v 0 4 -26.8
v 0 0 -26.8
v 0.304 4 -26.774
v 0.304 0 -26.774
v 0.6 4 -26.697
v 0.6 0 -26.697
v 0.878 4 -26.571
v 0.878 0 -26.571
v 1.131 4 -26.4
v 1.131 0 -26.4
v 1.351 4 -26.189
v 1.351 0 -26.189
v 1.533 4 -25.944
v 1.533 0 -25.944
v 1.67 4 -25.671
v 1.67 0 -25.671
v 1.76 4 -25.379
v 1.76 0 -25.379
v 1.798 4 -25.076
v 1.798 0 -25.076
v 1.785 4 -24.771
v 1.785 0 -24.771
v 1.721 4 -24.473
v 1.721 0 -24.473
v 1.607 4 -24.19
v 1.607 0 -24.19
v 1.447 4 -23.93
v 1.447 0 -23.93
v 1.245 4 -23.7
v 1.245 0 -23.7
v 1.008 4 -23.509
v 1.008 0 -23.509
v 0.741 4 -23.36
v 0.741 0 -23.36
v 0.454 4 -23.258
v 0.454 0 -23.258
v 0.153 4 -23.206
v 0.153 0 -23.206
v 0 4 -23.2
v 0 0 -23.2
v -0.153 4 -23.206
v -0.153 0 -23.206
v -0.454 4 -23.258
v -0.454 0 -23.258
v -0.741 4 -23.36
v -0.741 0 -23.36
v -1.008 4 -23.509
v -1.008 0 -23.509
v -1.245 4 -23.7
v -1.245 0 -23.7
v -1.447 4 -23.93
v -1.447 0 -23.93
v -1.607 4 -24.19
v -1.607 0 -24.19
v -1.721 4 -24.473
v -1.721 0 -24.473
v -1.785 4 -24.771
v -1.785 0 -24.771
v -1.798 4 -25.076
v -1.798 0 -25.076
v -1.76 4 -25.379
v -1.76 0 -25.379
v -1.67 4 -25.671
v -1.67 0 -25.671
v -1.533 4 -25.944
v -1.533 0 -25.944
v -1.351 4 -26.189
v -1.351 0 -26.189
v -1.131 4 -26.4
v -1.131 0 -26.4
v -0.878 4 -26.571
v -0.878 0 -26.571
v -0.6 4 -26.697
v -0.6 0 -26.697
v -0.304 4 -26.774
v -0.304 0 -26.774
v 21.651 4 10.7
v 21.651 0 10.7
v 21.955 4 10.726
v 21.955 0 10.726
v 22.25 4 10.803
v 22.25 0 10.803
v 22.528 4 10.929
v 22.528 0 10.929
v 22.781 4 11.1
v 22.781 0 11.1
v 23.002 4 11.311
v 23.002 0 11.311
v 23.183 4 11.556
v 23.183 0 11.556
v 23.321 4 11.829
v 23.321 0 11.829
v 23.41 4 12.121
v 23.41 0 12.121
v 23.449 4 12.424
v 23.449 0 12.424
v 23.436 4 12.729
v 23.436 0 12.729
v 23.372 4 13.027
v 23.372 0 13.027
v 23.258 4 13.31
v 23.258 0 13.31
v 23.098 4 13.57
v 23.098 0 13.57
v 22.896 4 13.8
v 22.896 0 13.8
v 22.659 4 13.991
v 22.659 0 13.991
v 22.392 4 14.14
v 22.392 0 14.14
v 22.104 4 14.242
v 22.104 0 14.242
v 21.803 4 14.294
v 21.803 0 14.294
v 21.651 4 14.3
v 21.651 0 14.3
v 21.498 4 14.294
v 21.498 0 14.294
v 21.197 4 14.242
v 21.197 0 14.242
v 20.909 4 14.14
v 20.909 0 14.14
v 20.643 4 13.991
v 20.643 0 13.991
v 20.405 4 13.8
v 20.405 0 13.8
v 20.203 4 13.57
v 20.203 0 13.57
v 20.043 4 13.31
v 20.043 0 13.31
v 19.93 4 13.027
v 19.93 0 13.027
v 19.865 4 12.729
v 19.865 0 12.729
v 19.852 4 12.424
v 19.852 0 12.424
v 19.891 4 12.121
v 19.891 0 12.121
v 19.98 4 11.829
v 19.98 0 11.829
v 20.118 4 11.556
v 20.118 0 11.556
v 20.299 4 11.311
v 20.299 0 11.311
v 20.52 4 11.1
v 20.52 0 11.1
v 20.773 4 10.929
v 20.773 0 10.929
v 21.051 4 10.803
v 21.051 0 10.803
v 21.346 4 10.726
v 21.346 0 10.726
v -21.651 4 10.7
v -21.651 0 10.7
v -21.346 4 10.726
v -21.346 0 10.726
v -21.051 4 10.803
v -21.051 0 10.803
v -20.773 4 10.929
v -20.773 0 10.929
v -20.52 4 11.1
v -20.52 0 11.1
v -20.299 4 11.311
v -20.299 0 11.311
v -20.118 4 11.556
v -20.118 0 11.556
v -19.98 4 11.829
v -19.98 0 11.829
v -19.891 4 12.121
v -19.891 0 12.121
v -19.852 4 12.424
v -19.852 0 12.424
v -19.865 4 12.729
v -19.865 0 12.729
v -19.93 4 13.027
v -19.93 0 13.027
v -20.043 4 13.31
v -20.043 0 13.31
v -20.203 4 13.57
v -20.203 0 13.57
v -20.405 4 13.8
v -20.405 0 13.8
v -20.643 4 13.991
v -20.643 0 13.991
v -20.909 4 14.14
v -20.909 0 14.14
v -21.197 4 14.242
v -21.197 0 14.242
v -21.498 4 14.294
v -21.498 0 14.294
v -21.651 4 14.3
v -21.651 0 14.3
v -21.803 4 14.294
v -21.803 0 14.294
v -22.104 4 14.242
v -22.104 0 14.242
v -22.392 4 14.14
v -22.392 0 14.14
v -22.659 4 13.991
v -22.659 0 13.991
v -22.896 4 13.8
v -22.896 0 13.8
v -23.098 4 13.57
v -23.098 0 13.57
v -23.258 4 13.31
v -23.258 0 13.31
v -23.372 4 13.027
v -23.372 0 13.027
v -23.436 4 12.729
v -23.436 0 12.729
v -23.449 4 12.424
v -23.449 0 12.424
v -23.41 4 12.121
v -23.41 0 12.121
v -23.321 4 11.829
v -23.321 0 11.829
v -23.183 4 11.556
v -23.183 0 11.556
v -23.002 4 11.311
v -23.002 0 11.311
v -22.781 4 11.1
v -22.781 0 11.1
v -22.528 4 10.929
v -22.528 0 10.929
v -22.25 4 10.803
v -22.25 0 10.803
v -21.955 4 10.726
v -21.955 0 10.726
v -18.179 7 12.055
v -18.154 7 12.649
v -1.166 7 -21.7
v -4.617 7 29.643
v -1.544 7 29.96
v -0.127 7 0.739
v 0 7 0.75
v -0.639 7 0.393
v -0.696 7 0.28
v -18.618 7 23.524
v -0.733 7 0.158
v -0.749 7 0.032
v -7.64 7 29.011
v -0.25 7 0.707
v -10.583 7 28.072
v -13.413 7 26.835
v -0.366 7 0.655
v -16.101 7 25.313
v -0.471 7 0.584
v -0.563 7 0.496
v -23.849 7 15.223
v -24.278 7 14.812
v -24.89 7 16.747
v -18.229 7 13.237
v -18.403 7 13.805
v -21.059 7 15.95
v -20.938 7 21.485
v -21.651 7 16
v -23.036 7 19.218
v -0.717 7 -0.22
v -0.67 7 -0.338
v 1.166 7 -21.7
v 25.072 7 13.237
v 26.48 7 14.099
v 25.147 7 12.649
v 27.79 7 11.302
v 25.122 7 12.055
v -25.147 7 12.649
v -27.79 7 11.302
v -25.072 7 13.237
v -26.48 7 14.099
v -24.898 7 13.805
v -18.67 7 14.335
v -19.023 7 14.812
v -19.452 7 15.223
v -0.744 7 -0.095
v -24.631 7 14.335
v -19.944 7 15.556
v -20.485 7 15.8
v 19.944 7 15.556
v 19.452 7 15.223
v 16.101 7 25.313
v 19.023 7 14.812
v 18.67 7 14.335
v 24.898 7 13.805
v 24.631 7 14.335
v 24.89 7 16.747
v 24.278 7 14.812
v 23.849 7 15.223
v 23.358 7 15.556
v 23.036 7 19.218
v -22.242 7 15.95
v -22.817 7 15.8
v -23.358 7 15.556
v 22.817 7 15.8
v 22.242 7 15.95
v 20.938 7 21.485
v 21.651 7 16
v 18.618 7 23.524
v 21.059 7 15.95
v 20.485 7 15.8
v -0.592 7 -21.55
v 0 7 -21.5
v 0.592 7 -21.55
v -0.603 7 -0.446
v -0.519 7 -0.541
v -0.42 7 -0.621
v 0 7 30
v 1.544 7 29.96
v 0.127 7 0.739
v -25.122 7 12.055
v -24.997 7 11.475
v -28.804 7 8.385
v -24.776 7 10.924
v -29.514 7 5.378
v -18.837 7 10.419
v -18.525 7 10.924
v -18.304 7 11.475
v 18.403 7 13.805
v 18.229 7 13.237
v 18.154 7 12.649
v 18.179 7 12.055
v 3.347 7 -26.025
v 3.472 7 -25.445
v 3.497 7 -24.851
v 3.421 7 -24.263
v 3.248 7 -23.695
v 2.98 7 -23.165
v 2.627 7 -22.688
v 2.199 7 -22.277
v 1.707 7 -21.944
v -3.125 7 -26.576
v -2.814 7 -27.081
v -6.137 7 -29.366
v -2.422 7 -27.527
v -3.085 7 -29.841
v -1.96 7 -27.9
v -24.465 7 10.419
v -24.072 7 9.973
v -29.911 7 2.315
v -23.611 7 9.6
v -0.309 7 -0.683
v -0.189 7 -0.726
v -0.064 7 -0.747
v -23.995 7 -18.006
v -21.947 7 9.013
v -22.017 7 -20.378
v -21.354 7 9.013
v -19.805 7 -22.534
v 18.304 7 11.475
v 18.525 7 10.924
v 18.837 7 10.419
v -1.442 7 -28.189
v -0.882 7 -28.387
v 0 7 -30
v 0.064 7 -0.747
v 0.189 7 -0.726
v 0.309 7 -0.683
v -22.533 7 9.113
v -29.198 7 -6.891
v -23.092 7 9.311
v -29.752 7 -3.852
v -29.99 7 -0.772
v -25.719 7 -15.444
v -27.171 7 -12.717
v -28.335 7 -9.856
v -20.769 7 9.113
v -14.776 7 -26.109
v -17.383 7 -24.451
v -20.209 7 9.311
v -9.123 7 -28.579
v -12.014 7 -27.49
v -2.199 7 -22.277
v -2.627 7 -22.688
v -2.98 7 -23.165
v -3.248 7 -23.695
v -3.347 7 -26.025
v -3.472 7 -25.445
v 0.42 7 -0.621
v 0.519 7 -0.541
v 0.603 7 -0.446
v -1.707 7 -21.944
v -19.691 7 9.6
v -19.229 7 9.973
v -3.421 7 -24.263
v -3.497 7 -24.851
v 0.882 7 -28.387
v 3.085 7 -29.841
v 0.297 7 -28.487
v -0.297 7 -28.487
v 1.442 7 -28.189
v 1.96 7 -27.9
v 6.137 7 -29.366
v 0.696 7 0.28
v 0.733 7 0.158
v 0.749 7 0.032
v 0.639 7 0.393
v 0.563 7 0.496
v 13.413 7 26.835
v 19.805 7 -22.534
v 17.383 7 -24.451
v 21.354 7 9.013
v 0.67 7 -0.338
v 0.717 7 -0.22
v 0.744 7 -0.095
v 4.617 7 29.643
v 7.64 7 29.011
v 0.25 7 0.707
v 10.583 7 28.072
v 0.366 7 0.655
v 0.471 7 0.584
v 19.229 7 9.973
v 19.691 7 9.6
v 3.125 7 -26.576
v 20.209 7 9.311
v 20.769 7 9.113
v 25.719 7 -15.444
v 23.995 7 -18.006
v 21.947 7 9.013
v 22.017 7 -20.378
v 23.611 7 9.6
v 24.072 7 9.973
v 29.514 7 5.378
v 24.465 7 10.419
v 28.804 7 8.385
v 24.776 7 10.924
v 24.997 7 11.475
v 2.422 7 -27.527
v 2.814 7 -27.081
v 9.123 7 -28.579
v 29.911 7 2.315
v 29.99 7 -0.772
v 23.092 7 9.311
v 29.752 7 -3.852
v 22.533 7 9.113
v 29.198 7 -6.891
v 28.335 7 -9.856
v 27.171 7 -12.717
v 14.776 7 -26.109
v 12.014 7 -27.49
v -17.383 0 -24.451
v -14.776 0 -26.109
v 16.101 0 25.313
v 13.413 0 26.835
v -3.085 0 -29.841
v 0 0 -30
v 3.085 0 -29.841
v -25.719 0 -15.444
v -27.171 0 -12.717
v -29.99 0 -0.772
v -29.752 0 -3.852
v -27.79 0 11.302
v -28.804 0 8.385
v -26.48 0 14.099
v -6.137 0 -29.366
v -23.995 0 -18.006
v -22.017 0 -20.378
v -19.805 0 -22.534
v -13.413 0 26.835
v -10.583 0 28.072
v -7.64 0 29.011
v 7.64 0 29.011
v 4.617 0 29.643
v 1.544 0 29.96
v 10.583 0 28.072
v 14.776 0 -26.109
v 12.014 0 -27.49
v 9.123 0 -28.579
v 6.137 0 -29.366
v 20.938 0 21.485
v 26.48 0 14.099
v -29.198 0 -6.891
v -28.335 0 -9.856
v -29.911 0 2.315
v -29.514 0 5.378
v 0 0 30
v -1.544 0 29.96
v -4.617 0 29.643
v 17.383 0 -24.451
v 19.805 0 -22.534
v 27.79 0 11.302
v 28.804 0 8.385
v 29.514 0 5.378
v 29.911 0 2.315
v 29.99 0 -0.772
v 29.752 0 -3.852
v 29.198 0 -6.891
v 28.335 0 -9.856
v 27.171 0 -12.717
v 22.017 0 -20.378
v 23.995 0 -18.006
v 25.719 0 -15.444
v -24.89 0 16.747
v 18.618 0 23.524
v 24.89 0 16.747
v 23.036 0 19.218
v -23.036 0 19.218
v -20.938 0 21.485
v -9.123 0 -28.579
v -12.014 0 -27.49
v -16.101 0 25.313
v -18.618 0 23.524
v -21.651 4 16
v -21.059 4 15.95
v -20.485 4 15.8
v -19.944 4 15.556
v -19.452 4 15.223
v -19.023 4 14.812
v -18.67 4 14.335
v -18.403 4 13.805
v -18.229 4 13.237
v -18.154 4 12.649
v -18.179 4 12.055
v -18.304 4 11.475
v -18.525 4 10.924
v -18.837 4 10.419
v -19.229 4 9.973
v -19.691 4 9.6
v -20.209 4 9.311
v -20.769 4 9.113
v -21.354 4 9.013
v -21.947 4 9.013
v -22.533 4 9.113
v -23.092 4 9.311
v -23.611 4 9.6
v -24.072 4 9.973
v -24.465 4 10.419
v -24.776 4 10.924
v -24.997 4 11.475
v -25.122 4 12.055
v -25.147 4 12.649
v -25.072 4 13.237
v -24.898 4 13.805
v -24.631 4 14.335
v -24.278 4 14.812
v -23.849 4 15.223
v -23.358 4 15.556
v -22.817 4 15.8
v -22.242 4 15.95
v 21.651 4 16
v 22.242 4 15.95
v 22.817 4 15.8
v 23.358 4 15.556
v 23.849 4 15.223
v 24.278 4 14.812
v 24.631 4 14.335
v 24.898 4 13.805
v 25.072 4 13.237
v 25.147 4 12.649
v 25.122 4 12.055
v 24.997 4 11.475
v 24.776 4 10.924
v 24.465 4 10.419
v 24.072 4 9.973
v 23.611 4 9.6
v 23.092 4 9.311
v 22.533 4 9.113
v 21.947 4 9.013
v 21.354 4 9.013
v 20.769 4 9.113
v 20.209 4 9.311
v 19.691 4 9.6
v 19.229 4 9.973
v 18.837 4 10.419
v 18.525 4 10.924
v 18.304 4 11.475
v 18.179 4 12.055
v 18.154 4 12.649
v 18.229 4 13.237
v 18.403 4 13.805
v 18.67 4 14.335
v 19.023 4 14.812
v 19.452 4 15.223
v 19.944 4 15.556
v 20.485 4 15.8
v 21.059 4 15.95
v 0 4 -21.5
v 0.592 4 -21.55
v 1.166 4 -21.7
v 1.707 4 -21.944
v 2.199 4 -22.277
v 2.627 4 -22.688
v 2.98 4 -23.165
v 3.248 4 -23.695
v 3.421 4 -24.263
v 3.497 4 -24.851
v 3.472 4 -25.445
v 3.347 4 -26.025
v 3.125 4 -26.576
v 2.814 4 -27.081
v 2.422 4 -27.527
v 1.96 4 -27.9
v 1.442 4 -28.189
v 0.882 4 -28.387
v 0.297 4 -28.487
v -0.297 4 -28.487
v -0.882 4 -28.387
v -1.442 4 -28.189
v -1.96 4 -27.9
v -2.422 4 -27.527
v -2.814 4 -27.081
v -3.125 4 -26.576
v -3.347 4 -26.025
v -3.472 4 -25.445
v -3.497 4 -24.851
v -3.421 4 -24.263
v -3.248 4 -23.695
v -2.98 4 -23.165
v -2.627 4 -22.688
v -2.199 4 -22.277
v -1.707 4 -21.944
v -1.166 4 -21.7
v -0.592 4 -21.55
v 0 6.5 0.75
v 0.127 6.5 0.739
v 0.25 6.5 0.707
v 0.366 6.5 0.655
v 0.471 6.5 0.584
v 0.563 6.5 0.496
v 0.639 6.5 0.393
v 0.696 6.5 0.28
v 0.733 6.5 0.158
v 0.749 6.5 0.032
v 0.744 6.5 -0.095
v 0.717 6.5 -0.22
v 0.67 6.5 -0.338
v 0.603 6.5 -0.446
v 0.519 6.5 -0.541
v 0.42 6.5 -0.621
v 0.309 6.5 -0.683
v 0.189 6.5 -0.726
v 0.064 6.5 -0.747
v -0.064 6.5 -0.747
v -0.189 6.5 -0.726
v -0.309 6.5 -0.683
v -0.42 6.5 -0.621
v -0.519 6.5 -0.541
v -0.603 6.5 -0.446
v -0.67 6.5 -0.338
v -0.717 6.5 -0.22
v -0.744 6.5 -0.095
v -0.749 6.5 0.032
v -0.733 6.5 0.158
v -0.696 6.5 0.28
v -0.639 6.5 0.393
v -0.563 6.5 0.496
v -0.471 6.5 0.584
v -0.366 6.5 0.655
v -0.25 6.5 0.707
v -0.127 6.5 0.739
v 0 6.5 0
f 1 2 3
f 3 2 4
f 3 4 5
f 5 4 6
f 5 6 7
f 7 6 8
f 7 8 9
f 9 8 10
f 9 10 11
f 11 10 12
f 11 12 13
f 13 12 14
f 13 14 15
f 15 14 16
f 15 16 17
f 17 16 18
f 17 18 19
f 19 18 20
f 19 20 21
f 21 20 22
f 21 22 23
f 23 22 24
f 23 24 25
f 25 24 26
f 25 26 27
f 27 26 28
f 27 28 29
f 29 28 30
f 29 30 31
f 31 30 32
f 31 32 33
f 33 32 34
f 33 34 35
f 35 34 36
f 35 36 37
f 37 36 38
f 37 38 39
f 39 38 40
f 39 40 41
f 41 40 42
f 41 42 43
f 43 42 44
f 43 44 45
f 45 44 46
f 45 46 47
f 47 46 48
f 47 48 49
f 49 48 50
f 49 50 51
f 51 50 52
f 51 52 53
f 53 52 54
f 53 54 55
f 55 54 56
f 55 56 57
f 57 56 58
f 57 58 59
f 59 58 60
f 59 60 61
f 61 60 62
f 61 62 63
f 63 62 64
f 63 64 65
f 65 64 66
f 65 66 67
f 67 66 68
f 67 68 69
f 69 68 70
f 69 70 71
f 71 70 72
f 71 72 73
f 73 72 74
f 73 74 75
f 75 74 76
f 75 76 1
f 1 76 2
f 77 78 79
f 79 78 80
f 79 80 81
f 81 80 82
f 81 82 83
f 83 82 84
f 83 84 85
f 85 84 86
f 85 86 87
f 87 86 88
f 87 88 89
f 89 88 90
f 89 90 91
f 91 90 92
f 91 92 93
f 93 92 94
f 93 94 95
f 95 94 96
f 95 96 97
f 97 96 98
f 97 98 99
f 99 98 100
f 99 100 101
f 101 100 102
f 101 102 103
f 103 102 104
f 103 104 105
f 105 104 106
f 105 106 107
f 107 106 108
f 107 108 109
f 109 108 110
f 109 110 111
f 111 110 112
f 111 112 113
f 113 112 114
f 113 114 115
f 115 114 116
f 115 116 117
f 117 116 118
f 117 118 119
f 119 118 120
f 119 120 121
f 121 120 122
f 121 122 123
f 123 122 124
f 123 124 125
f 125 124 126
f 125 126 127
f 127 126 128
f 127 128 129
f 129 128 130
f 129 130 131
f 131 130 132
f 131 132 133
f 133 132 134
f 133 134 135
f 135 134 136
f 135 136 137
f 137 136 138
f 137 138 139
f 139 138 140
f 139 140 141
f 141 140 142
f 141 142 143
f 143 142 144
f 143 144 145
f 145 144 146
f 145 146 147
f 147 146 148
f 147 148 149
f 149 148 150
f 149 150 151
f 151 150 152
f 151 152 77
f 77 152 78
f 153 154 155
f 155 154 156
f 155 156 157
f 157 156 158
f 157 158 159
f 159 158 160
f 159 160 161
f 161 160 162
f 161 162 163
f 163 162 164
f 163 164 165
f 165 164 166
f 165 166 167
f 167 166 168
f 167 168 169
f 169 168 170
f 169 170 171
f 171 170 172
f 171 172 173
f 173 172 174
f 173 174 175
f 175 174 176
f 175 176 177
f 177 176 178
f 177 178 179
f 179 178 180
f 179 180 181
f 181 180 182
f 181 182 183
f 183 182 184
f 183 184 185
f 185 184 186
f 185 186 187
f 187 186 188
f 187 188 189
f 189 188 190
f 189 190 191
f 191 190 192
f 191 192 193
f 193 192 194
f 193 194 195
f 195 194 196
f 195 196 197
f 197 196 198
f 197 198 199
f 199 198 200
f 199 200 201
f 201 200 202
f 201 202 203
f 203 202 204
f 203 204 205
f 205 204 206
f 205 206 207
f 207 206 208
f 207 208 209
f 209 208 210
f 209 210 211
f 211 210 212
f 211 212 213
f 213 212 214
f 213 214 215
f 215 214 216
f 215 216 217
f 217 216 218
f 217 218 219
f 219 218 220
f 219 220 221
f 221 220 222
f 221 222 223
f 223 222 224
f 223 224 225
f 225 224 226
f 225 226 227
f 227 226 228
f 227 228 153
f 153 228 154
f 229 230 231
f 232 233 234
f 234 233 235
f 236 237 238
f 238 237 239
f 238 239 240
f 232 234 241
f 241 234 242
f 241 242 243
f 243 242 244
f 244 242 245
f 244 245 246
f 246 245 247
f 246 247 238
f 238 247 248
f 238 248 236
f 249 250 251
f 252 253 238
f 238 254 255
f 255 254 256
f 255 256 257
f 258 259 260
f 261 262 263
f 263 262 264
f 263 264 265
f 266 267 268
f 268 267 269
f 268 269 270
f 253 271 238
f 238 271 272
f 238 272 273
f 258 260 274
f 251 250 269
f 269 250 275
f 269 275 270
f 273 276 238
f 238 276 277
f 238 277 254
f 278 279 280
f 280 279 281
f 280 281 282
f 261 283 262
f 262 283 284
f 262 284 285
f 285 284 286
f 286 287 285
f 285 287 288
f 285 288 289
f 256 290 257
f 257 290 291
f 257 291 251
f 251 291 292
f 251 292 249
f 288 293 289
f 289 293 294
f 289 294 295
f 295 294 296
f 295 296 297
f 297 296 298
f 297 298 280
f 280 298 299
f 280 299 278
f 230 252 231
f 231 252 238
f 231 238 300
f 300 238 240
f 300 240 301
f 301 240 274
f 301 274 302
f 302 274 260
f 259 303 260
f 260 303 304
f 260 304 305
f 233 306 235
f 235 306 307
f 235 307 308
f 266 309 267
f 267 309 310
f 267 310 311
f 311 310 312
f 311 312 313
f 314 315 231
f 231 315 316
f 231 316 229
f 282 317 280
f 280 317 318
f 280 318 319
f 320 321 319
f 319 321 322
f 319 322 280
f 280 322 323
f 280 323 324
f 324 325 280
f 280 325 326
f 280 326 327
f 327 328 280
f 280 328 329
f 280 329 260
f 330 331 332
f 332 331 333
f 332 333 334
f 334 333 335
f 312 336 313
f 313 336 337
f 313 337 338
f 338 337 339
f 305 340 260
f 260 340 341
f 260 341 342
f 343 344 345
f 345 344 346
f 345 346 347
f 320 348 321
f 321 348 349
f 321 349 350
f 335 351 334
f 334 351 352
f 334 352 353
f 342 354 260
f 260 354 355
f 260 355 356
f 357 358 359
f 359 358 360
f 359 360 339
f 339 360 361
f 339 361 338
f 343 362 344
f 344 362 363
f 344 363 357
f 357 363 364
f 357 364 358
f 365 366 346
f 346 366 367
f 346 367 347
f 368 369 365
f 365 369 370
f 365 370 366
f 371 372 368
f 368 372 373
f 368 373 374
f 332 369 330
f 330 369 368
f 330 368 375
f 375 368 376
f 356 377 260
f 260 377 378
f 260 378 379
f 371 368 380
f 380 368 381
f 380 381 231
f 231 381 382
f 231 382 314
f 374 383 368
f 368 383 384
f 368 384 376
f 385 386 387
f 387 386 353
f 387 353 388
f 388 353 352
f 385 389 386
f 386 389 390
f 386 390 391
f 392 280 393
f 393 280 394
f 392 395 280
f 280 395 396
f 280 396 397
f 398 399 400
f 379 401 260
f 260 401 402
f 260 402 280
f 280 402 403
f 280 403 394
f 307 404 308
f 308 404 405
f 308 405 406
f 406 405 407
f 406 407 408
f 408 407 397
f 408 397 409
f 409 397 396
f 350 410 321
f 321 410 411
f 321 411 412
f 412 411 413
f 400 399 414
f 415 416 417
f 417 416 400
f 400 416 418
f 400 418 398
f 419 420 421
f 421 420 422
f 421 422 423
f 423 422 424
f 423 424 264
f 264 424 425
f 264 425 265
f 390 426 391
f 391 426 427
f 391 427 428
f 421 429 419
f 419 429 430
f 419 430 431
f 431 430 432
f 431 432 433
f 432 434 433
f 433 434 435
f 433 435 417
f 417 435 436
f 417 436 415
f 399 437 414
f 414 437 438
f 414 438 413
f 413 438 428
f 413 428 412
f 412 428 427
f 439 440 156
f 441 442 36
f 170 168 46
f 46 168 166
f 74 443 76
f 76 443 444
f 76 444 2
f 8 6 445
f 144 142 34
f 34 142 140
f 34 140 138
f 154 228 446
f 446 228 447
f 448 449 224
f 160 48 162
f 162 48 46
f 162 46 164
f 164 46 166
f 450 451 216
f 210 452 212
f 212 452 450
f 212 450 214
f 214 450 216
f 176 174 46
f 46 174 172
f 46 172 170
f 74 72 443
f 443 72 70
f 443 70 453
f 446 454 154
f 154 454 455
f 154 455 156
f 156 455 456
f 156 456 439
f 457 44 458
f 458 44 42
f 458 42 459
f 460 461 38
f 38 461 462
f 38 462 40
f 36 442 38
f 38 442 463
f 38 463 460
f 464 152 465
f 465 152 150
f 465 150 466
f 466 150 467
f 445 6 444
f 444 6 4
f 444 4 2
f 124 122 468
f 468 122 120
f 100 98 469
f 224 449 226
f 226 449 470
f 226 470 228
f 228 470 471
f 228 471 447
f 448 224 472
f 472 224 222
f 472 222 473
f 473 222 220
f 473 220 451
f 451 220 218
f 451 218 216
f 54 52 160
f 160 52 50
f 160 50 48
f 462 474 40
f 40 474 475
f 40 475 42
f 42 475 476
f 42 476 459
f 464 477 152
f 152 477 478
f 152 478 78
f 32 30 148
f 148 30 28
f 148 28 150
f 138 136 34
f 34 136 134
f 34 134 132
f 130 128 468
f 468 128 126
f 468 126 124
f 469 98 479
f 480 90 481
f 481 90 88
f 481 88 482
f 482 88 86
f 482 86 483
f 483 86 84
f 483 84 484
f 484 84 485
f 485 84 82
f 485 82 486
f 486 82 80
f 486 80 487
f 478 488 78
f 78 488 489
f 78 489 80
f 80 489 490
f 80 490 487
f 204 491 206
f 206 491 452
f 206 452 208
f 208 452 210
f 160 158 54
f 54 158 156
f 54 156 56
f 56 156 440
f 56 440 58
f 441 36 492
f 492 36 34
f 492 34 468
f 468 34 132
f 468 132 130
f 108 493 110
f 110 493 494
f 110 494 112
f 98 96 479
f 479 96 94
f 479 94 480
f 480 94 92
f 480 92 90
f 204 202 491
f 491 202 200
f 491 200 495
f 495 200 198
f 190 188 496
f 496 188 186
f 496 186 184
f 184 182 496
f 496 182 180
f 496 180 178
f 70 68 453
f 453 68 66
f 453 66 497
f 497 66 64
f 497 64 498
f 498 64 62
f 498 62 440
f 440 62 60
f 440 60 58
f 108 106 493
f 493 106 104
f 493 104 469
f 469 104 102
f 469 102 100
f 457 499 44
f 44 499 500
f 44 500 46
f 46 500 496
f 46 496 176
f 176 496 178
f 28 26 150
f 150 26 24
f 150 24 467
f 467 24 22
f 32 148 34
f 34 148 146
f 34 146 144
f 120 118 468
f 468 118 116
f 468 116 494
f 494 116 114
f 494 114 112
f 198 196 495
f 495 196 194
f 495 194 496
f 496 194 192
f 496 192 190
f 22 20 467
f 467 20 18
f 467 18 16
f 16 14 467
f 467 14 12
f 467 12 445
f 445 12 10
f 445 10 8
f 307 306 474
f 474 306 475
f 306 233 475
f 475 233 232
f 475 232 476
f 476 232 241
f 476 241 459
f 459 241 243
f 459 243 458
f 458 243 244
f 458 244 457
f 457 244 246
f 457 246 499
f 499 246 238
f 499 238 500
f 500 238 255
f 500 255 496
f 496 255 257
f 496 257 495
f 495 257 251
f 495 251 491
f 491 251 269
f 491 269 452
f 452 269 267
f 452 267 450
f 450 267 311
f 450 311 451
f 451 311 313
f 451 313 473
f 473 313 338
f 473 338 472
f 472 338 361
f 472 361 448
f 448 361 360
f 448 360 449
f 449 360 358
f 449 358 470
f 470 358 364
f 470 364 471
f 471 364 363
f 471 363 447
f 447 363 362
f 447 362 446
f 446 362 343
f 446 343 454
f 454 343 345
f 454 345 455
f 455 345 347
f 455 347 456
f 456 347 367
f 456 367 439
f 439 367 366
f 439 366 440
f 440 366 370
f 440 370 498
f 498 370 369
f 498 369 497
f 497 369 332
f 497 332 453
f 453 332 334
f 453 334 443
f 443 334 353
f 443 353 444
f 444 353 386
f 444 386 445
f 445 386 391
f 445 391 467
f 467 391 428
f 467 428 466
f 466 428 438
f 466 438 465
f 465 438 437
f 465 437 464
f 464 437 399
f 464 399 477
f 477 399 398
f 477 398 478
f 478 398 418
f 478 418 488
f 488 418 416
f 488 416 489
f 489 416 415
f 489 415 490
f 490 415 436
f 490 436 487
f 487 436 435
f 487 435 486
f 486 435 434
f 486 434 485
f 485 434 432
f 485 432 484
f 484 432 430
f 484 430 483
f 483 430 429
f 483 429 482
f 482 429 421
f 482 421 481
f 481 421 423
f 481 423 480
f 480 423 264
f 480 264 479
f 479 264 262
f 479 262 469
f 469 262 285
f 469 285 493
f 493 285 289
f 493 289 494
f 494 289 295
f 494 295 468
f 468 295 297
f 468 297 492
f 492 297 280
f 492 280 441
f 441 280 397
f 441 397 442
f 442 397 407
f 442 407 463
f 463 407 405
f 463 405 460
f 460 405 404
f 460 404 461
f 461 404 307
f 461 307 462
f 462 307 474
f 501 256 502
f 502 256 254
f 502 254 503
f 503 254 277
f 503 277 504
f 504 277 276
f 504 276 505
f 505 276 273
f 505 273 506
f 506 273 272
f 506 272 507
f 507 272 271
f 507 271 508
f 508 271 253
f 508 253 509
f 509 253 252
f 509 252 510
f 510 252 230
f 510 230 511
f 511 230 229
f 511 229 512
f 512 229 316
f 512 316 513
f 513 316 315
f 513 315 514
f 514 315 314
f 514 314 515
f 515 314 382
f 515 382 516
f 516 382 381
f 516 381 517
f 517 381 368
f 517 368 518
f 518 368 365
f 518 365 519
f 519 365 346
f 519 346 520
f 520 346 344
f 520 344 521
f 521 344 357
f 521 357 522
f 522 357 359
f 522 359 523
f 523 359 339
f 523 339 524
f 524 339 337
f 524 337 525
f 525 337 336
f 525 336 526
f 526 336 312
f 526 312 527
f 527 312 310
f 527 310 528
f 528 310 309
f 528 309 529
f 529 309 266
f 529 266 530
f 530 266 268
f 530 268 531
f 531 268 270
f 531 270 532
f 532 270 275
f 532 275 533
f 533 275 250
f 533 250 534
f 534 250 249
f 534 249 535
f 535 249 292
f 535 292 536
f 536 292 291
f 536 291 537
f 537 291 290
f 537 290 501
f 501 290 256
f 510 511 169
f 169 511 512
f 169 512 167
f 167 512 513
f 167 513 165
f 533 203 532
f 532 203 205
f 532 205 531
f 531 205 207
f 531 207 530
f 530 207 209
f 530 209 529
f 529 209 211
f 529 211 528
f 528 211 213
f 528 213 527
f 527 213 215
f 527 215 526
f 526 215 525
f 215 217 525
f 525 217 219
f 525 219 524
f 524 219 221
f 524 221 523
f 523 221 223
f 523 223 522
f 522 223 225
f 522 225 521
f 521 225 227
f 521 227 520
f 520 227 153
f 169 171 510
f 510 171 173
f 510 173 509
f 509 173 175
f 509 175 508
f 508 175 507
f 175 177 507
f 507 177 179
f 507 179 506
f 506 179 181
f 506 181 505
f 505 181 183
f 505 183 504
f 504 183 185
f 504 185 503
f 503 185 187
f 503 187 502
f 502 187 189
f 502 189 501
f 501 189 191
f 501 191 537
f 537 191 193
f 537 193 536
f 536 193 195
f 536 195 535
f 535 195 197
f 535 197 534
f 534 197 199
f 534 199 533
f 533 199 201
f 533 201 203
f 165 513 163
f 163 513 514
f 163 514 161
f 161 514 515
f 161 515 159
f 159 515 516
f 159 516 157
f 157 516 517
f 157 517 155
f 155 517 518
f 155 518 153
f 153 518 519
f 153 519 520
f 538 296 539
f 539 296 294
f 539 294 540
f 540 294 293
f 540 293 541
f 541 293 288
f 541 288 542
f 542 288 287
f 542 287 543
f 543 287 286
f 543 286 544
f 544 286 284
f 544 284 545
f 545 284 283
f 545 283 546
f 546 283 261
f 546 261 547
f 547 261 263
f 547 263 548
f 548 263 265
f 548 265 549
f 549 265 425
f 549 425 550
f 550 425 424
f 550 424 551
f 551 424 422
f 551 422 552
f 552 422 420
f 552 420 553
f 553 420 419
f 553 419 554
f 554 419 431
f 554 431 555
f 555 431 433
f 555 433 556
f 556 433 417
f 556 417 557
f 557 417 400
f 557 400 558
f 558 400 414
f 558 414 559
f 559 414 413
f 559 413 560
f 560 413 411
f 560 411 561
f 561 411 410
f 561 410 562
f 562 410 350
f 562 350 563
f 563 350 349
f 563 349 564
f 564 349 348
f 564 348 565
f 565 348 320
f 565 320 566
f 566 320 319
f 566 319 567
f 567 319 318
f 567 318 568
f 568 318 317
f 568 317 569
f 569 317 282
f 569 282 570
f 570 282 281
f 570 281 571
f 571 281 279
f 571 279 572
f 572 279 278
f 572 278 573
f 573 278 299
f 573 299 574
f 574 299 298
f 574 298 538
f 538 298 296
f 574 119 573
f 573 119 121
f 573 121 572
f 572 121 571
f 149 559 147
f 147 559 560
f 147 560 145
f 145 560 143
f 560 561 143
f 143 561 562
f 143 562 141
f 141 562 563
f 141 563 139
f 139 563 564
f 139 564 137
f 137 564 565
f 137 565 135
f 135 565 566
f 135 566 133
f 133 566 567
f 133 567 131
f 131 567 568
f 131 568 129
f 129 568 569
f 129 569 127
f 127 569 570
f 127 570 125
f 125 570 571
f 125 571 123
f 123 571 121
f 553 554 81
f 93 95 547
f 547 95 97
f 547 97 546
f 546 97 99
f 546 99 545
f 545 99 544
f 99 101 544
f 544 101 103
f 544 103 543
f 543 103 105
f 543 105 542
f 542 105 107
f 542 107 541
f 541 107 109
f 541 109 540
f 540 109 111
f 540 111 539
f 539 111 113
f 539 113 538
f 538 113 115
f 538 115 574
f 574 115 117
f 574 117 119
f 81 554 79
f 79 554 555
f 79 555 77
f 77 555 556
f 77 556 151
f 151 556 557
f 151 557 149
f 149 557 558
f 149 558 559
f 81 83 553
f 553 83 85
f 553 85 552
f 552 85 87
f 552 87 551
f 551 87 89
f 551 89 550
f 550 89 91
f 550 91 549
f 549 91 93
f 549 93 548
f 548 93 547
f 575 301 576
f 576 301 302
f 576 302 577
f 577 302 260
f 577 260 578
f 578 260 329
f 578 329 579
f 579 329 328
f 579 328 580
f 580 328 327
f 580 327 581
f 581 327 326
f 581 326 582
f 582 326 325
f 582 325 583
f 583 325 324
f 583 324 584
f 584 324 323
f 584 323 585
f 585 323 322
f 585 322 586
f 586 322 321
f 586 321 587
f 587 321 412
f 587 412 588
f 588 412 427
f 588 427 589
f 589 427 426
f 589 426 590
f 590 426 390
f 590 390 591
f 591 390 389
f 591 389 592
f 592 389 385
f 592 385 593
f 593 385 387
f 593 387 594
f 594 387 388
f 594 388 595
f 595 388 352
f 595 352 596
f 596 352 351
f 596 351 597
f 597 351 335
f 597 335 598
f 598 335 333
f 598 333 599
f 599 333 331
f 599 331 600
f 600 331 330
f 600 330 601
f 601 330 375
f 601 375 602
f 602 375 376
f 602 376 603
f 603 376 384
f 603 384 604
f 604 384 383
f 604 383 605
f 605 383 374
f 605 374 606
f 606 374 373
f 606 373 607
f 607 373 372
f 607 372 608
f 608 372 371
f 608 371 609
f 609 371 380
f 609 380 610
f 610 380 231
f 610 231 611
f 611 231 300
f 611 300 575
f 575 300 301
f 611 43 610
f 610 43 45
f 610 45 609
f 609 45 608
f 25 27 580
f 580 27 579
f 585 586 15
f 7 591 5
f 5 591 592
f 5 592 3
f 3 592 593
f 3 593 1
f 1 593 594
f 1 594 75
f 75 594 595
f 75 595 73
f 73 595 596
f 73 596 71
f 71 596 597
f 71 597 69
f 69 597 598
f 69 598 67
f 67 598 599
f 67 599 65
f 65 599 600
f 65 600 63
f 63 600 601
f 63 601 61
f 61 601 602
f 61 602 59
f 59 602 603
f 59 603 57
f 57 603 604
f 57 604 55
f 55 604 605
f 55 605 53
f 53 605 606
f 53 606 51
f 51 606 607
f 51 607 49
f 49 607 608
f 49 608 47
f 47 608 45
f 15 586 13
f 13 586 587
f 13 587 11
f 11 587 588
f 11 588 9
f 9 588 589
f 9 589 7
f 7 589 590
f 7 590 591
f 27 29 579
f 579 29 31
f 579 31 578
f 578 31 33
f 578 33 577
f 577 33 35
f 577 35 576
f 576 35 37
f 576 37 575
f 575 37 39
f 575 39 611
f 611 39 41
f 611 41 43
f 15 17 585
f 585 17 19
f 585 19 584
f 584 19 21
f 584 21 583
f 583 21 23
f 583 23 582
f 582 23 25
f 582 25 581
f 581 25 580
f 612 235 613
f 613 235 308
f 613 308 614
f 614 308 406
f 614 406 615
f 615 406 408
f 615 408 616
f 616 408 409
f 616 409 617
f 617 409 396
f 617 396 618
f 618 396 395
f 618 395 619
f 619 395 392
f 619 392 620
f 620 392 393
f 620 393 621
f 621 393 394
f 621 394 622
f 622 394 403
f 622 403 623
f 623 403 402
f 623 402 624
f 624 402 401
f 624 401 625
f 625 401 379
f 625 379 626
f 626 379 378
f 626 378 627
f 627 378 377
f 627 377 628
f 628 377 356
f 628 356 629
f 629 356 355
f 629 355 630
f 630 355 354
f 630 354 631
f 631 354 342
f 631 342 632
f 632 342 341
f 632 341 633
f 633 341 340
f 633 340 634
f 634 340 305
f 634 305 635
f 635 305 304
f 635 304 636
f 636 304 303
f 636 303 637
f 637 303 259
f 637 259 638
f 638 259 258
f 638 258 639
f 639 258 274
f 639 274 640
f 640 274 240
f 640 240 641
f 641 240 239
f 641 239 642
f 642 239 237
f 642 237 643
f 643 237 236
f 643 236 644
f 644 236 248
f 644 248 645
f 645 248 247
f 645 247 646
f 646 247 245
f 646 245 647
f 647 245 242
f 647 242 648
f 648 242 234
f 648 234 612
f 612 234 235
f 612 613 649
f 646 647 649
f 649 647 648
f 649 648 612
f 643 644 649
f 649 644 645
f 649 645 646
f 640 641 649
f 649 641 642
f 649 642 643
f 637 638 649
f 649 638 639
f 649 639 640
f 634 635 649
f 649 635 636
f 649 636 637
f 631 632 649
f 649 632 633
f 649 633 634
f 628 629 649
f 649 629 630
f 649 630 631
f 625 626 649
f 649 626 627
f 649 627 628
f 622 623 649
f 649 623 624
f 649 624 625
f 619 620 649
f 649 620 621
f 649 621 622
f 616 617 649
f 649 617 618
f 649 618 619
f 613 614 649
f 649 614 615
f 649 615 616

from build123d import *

# Parameters (mm, degrees)
SKETCH1_R           = 30
SKETCH1_R_2         = 1.8
BOSS_EXTRUDE1_DEPTH = 7
SKETCH2_R           = 3.5
CUT_EXTRUDE1_DEPTH  = 3
SKETCH3_R           = 0.75
CUT_EXTRUDE2_DEPTH  = 0.5


with BuildPart() as part:
    # Sketch1 → Boss-Extrude1 (new body)
    with BuildSketch(Plane(origin=(0, 0, 0), x_dir=(1, 0, 0), z_dir=(0, 1, 0))):
        Circle(SKETCH1_R)
        with Locations((0, 25)):
            Circle(SKETCH1_R_2, mode=Mode.SUBTRACT)
        with Locations((21.650635095, -12.5)):
            Circle(SKETCH1_R_2, mode=Mode.SUBTRACT)
        with Locations((-21.650635095, -12.5)):
            Circle(SKETCH1_R_2, mode=Mode.SUBTRACT)
    extrude(amount=BOSS_EXTRUDE1_DEPTH)

    # Sketch2 → Cut-Extrude1 (cut)
    with BuildSketch(Plane(origin=(0, 7, 0), x_dir=(1, 0, 0), z_dir=(0, 1, 0))):
        with Locations((0, 25)):
            Circle(SKETCH2_R)
        with Locations((21.650635095, -12.5)):
            Circle(SKETCH2_R)
        with Locations((-21.650635095, -12.5)):
            Circle(SKETCH2_R)
    extrude(amount=-CUT_EXTRUDE1_DEPTH, mode=Mode.SUBTRACT)

    # Sketch3 → Cut-Extrude2 (cut)
    with BuildSketch(Plane(origin=(0, 7, 0), x_dir=(1, 0, 0), z_dir=(0, 1, 0))):
        Circle(SKETCH3_R)
    extrude(amount=-CUT_EXTRUDE2_DEPTH, mode=Mode.SUBTRACT)


solid = part.part
